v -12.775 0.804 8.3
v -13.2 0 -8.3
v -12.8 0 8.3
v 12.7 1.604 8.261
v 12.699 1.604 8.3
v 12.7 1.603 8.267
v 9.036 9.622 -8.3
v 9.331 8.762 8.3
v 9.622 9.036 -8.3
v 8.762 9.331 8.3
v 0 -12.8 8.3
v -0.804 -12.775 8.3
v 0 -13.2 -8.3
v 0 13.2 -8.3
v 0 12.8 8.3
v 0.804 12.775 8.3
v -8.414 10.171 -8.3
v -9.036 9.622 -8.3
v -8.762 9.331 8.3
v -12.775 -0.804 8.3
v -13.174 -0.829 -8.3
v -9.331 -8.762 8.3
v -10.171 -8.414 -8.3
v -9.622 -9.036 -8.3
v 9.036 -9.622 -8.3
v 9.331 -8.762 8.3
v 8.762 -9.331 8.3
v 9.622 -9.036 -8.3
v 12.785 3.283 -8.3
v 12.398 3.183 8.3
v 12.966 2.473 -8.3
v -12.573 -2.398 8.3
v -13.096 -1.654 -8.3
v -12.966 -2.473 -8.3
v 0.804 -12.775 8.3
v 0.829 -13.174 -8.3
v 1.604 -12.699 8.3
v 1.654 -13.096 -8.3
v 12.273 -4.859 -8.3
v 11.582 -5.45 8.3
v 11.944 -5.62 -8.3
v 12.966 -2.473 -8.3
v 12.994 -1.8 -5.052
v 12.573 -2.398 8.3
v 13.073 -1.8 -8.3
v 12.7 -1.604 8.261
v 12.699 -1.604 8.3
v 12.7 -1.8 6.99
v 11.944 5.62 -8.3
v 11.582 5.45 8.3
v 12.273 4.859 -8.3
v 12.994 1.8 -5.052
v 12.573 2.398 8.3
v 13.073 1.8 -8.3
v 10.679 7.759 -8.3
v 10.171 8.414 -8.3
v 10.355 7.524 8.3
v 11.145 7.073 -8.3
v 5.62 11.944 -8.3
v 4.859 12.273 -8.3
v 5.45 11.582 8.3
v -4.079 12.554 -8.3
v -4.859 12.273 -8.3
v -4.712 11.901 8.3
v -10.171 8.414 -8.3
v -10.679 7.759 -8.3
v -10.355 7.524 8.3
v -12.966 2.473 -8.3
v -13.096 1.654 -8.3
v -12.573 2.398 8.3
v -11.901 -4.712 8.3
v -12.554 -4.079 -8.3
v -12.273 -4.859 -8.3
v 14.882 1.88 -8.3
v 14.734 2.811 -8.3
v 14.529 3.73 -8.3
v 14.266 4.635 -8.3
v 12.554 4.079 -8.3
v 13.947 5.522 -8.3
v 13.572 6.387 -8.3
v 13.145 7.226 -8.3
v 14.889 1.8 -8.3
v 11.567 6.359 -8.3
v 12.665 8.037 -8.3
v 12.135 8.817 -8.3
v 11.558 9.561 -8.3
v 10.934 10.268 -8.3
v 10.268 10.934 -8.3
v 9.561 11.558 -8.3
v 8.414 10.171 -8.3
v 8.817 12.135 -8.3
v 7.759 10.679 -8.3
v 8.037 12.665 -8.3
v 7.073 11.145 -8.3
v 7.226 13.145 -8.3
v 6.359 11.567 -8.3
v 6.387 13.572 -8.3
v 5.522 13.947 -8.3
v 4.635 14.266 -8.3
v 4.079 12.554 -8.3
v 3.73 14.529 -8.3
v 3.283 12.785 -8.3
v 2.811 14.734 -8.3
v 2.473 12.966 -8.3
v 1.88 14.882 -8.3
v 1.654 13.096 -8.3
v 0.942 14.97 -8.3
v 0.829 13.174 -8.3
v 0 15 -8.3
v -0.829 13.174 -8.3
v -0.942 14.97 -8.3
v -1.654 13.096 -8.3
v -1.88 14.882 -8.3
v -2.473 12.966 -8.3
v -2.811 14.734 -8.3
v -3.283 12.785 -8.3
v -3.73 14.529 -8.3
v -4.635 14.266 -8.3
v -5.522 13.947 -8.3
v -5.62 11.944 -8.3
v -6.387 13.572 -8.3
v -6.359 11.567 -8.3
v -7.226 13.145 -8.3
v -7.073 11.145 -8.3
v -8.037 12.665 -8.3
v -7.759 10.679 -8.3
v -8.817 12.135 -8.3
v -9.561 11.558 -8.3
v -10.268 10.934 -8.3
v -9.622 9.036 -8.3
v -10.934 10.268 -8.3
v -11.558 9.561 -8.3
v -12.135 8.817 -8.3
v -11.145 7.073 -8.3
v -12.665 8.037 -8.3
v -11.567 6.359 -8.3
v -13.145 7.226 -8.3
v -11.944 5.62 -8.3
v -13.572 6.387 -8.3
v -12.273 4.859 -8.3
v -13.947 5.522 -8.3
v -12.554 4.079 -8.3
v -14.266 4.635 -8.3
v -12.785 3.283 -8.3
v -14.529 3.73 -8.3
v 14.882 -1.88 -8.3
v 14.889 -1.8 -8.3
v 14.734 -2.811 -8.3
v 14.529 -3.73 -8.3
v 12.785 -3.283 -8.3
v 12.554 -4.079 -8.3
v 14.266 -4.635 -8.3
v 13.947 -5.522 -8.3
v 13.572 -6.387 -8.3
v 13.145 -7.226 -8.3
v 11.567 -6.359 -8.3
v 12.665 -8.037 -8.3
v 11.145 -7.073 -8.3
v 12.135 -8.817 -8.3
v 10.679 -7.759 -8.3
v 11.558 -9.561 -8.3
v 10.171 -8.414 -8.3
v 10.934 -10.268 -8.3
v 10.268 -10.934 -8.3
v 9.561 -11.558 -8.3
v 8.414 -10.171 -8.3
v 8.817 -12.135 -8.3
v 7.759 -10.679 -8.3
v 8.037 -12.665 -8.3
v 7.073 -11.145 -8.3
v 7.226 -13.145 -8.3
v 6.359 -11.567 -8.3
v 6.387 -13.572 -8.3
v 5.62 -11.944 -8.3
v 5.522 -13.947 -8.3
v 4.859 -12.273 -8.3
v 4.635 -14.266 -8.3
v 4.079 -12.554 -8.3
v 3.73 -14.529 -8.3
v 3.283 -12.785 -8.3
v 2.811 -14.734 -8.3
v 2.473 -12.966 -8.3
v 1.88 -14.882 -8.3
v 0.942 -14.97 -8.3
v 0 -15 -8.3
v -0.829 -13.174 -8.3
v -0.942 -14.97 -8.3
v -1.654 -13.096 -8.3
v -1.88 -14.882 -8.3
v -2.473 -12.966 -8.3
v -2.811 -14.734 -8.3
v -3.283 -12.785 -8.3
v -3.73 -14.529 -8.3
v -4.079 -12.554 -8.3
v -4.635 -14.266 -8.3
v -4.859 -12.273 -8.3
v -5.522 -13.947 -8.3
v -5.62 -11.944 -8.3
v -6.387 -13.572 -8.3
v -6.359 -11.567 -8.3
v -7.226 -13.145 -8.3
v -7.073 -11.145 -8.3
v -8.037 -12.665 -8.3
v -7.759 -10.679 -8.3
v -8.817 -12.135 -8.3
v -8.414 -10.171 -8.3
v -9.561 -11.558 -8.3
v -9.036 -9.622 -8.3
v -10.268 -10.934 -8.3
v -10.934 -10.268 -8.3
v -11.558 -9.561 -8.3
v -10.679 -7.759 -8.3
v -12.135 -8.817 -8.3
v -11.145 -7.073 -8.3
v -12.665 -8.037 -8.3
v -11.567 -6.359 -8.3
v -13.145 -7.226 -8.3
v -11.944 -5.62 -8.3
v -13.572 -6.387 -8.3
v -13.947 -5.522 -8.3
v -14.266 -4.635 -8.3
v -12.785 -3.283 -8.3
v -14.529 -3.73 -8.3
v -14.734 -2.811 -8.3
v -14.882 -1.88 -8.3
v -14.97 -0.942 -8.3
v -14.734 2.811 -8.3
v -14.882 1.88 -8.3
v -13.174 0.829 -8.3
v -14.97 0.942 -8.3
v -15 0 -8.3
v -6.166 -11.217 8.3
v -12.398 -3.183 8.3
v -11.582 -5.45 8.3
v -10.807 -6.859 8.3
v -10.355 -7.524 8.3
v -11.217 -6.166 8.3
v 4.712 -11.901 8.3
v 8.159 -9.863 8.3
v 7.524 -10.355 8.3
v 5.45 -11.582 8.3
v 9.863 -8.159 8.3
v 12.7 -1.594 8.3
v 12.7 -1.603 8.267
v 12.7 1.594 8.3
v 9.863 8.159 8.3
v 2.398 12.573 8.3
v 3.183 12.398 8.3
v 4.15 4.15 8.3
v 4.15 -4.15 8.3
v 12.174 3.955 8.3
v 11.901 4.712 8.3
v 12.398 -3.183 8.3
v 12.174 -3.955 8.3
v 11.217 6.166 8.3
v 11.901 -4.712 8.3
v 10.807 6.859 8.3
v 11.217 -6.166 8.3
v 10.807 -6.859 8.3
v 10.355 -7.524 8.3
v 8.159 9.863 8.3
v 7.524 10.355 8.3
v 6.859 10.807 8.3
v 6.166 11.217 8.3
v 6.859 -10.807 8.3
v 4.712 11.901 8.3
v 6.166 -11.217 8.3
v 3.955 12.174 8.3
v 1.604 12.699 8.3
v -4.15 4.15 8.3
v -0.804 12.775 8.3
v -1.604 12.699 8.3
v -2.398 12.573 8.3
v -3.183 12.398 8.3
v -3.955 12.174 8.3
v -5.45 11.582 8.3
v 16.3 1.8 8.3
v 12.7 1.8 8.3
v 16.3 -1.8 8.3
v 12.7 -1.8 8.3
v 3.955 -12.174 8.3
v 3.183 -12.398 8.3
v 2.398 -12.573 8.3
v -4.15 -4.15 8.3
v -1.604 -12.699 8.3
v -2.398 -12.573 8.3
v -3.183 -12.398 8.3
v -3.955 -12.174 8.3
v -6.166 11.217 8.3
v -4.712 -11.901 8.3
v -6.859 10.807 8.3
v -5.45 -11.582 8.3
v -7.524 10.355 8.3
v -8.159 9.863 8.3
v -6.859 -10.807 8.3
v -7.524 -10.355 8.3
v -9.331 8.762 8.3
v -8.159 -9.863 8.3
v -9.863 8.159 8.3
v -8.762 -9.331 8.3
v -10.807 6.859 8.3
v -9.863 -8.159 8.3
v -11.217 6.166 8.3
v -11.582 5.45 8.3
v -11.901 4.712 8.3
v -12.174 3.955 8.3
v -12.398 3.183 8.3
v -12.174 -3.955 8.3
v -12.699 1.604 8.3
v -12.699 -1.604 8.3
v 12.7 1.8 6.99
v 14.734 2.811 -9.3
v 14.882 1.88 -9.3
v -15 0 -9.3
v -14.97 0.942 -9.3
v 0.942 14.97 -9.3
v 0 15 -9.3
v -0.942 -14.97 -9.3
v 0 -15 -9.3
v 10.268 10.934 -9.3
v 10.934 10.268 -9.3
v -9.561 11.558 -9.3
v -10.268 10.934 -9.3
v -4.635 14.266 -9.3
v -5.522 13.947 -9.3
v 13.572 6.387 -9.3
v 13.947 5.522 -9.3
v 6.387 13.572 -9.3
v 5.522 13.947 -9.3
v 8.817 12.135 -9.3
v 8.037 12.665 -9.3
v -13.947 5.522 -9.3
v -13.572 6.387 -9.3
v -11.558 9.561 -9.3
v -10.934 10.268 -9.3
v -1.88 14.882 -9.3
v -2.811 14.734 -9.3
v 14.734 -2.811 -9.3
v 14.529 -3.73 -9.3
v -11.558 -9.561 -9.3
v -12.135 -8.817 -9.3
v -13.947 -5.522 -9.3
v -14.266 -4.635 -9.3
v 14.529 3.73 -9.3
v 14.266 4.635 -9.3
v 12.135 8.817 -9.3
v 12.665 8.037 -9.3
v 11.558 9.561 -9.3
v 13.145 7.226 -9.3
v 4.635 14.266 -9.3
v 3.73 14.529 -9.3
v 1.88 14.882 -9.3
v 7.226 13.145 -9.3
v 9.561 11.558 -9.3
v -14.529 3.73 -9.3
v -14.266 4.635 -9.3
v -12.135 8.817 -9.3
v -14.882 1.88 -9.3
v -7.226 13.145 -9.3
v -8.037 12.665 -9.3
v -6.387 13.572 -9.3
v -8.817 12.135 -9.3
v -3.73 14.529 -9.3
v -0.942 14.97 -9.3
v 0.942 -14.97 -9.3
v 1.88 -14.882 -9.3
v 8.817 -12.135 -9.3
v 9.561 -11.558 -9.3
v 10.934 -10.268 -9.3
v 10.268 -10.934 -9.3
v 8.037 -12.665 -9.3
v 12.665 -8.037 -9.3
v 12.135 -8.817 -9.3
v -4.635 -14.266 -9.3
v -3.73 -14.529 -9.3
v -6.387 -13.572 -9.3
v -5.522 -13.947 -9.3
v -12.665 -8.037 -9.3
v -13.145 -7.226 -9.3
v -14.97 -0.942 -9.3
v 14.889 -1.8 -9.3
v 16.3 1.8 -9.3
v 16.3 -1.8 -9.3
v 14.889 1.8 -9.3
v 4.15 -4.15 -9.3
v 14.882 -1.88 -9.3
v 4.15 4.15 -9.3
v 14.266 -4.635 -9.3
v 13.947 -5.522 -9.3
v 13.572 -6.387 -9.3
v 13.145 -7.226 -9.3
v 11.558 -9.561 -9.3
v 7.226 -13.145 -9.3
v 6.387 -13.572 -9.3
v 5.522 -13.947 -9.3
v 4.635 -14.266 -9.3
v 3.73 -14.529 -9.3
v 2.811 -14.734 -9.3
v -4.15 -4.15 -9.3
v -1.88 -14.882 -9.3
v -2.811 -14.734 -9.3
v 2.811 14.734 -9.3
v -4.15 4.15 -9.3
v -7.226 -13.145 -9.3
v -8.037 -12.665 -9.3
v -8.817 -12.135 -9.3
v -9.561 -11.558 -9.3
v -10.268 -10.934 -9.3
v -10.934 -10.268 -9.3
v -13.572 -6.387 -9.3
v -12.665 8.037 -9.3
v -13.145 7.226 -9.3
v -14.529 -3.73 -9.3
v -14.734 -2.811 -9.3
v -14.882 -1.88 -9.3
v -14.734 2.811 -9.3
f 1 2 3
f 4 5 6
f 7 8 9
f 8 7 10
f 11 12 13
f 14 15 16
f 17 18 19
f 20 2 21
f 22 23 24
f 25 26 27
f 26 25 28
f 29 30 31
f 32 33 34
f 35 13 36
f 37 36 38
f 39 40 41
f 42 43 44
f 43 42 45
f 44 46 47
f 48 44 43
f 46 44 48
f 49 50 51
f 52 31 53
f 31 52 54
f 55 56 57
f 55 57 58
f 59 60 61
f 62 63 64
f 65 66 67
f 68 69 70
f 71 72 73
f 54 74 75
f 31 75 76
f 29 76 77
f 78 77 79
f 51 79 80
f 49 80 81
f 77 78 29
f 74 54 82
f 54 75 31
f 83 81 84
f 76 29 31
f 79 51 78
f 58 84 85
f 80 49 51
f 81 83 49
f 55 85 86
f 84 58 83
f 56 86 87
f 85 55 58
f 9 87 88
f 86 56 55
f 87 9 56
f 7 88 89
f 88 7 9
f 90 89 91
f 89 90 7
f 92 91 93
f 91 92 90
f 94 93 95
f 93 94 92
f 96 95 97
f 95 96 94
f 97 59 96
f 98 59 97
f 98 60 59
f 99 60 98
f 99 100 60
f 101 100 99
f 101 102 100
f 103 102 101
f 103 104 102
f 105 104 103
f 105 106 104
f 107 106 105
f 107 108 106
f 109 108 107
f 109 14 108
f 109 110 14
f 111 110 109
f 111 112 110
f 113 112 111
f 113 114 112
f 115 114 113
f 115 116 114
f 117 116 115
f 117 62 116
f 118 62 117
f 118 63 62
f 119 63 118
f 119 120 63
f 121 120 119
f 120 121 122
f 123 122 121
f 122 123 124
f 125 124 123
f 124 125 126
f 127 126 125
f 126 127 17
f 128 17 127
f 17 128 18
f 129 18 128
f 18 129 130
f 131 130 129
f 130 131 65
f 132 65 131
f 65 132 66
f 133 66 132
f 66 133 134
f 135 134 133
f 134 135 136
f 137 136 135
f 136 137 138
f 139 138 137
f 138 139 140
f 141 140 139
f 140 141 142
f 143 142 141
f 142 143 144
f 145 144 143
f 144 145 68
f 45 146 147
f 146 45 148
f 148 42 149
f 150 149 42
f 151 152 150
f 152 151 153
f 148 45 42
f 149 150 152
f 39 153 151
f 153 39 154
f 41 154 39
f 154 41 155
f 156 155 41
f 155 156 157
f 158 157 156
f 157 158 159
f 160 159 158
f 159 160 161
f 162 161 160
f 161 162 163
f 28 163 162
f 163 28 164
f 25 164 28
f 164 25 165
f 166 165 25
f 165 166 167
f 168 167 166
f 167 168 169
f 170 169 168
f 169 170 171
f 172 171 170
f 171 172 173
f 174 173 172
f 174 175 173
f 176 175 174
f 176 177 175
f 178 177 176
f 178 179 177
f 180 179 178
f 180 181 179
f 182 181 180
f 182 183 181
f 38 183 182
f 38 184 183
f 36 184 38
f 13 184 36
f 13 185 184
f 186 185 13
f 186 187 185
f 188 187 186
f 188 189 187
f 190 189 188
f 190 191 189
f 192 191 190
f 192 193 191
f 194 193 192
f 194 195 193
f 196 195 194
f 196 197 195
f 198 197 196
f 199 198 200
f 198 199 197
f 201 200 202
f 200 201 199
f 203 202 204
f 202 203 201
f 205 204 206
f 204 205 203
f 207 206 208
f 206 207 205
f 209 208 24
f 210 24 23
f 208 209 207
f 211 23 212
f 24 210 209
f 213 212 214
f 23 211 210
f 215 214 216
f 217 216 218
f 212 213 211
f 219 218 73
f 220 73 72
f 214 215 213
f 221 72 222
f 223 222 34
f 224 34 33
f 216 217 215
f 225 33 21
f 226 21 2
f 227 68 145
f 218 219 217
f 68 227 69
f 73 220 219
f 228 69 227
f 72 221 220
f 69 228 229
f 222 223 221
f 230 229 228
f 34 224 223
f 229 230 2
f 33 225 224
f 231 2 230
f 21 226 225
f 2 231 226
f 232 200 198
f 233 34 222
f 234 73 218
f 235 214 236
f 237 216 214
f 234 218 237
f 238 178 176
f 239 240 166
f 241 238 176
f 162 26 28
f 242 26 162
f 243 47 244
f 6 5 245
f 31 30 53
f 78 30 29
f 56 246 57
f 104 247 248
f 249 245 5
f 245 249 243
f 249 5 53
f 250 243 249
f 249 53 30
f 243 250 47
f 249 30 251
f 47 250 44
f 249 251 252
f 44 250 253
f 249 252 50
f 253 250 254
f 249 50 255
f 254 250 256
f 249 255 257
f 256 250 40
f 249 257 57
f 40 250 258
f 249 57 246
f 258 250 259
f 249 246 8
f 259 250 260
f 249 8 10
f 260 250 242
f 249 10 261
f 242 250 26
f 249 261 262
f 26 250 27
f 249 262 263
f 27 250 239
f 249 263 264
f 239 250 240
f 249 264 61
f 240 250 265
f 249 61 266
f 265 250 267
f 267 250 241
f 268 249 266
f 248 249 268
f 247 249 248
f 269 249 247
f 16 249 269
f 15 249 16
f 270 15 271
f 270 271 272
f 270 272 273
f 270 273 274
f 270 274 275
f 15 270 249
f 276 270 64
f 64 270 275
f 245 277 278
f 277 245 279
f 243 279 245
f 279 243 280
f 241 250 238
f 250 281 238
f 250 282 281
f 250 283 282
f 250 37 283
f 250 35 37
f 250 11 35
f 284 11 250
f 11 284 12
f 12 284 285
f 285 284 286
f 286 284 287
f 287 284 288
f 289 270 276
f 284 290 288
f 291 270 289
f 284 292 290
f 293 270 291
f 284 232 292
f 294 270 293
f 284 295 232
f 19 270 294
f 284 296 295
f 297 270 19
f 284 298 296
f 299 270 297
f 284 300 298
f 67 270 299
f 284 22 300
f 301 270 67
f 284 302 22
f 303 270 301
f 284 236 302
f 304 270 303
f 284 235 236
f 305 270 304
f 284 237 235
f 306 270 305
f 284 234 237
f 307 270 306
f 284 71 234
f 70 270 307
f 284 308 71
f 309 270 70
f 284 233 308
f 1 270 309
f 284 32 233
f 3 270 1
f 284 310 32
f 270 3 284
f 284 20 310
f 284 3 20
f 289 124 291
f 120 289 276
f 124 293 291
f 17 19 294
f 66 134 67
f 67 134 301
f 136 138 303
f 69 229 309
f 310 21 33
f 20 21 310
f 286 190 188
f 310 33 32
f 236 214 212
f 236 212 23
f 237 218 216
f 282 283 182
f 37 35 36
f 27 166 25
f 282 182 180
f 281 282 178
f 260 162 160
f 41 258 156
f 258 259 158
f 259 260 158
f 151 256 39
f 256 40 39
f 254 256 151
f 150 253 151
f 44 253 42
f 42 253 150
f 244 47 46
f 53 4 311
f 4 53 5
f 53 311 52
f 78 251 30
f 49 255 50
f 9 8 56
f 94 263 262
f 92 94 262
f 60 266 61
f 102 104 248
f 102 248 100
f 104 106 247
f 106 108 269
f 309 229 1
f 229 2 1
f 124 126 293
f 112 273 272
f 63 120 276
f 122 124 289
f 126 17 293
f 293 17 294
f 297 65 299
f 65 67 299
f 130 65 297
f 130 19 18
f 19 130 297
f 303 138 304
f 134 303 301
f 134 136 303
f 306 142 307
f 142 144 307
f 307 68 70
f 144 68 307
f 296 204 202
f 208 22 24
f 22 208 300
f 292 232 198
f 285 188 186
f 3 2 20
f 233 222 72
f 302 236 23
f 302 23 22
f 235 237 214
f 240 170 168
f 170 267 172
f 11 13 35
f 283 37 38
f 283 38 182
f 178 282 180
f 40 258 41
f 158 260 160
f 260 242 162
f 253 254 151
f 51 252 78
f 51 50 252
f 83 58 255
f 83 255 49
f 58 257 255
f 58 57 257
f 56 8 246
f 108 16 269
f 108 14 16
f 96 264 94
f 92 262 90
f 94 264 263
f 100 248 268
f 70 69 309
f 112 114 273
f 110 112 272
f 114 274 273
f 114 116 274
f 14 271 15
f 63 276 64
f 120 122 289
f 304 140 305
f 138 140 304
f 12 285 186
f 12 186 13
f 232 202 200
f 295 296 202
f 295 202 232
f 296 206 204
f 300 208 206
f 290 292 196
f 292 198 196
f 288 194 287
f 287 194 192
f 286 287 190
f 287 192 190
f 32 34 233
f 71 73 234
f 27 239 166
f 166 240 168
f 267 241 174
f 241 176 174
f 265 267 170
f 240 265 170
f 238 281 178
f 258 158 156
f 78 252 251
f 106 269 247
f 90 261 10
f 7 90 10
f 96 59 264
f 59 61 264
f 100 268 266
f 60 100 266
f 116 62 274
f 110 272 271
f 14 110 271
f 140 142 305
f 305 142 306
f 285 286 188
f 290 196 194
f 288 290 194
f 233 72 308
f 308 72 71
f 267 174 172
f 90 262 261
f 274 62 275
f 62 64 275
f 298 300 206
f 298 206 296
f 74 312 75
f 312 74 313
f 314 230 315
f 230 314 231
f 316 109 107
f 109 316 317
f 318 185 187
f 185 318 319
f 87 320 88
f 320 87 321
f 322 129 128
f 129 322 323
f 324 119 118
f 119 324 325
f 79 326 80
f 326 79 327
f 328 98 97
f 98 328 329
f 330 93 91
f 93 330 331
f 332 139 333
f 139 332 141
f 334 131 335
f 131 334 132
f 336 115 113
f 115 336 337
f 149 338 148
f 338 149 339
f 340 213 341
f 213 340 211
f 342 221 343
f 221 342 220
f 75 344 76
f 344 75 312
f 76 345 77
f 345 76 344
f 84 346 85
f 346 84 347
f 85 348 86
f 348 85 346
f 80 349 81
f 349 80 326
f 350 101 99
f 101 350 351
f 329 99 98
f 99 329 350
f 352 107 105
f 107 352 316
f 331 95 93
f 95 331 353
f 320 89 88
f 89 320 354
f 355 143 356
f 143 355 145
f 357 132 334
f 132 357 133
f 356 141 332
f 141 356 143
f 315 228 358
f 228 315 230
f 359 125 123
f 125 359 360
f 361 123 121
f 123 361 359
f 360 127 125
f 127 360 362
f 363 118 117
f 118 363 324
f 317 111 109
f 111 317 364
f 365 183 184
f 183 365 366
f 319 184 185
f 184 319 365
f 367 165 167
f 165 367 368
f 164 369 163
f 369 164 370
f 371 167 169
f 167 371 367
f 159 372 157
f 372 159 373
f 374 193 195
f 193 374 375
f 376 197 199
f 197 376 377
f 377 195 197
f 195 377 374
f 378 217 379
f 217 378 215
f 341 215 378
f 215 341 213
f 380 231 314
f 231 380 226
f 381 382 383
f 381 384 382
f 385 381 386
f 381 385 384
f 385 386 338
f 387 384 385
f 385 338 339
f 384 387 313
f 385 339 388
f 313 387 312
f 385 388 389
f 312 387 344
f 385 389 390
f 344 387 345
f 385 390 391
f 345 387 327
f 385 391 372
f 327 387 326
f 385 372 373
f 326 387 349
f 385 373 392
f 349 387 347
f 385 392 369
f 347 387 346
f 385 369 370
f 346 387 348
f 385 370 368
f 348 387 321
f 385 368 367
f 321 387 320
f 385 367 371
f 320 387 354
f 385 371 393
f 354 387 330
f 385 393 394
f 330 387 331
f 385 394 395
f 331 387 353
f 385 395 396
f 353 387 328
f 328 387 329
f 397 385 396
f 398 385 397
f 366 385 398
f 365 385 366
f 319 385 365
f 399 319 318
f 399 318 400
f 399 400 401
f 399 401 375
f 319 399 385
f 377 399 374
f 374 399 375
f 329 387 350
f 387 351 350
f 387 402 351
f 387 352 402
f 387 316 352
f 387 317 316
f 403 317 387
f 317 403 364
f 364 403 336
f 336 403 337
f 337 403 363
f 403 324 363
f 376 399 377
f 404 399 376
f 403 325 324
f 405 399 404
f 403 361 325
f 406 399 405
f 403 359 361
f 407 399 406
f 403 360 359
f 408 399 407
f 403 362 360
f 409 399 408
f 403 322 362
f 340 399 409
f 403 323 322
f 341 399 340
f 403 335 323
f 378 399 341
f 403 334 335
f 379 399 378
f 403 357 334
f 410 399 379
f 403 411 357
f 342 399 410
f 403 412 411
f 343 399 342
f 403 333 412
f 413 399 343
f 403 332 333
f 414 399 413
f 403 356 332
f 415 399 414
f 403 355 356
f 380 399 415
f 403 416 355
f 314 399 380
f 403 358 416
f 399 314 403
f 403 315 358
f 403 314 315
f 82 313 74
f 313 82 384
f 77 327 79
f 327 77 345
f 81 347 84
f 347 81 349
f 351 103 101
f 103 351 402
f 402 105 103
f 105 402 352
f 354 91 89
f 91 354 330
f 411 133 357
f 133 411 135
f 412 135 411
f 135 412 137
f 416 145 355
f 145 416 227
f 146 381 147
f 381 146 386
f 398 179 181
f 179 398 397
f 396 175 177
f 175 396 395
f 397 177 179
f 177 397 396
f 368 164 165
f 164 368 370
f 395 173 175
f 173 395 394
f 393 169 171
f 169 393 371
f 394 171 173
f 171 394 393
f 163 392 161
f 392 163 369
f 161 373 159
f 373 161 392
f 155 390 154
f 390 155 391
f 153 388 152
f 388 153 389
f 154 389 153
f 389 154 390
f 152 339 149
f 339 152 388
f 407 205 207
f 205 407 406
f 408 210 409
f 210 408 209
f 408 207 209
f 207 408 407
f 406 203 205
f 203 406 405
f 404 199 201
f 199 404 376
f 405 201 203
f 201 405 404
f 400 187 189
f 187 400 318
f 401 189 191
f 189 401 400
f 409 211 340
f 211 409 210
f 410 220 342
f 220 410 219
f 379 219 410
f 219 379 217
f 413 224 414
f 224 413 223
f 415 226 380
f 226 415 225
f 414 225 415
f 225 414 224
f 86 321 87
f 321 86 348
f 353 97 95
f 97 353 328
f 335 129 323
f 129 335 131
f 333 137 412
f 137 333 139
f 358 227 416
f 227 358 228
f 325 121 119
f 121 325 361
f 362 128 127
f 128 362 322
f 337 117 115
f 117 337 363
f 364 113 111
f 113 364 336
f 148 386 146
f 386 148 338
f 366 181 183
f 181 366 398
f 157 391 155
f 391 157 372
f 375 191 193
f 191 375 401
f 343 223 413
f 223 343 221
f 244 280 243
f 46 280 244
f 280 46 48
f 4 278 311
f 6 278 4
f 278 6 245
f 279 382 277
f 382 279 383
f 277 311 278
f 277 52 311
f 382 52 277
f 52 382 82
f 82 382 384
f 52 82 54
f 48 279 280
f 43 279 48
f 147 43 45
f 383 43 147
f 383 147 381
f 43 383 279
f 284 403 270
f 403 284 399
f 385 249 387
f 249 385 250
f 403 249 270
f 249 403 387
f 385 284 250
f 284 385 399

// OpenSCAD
module core_adapter () {
    $fn = 100;
	difference () {
		union () {
			cylinder(r1 = 13.2, r2 = 12.8, h = 16.6, center = true);
			translate([0, 0, -8.8]) cylinder(r = 15, h = 1, center = true);
			translate([14.5, 0, -.5]) cube([3.6, 3.6, 17.6], center = true);
		}
		cube([8.3, 8.3, 21.5], center = true);
	}
}

core_adapter();
